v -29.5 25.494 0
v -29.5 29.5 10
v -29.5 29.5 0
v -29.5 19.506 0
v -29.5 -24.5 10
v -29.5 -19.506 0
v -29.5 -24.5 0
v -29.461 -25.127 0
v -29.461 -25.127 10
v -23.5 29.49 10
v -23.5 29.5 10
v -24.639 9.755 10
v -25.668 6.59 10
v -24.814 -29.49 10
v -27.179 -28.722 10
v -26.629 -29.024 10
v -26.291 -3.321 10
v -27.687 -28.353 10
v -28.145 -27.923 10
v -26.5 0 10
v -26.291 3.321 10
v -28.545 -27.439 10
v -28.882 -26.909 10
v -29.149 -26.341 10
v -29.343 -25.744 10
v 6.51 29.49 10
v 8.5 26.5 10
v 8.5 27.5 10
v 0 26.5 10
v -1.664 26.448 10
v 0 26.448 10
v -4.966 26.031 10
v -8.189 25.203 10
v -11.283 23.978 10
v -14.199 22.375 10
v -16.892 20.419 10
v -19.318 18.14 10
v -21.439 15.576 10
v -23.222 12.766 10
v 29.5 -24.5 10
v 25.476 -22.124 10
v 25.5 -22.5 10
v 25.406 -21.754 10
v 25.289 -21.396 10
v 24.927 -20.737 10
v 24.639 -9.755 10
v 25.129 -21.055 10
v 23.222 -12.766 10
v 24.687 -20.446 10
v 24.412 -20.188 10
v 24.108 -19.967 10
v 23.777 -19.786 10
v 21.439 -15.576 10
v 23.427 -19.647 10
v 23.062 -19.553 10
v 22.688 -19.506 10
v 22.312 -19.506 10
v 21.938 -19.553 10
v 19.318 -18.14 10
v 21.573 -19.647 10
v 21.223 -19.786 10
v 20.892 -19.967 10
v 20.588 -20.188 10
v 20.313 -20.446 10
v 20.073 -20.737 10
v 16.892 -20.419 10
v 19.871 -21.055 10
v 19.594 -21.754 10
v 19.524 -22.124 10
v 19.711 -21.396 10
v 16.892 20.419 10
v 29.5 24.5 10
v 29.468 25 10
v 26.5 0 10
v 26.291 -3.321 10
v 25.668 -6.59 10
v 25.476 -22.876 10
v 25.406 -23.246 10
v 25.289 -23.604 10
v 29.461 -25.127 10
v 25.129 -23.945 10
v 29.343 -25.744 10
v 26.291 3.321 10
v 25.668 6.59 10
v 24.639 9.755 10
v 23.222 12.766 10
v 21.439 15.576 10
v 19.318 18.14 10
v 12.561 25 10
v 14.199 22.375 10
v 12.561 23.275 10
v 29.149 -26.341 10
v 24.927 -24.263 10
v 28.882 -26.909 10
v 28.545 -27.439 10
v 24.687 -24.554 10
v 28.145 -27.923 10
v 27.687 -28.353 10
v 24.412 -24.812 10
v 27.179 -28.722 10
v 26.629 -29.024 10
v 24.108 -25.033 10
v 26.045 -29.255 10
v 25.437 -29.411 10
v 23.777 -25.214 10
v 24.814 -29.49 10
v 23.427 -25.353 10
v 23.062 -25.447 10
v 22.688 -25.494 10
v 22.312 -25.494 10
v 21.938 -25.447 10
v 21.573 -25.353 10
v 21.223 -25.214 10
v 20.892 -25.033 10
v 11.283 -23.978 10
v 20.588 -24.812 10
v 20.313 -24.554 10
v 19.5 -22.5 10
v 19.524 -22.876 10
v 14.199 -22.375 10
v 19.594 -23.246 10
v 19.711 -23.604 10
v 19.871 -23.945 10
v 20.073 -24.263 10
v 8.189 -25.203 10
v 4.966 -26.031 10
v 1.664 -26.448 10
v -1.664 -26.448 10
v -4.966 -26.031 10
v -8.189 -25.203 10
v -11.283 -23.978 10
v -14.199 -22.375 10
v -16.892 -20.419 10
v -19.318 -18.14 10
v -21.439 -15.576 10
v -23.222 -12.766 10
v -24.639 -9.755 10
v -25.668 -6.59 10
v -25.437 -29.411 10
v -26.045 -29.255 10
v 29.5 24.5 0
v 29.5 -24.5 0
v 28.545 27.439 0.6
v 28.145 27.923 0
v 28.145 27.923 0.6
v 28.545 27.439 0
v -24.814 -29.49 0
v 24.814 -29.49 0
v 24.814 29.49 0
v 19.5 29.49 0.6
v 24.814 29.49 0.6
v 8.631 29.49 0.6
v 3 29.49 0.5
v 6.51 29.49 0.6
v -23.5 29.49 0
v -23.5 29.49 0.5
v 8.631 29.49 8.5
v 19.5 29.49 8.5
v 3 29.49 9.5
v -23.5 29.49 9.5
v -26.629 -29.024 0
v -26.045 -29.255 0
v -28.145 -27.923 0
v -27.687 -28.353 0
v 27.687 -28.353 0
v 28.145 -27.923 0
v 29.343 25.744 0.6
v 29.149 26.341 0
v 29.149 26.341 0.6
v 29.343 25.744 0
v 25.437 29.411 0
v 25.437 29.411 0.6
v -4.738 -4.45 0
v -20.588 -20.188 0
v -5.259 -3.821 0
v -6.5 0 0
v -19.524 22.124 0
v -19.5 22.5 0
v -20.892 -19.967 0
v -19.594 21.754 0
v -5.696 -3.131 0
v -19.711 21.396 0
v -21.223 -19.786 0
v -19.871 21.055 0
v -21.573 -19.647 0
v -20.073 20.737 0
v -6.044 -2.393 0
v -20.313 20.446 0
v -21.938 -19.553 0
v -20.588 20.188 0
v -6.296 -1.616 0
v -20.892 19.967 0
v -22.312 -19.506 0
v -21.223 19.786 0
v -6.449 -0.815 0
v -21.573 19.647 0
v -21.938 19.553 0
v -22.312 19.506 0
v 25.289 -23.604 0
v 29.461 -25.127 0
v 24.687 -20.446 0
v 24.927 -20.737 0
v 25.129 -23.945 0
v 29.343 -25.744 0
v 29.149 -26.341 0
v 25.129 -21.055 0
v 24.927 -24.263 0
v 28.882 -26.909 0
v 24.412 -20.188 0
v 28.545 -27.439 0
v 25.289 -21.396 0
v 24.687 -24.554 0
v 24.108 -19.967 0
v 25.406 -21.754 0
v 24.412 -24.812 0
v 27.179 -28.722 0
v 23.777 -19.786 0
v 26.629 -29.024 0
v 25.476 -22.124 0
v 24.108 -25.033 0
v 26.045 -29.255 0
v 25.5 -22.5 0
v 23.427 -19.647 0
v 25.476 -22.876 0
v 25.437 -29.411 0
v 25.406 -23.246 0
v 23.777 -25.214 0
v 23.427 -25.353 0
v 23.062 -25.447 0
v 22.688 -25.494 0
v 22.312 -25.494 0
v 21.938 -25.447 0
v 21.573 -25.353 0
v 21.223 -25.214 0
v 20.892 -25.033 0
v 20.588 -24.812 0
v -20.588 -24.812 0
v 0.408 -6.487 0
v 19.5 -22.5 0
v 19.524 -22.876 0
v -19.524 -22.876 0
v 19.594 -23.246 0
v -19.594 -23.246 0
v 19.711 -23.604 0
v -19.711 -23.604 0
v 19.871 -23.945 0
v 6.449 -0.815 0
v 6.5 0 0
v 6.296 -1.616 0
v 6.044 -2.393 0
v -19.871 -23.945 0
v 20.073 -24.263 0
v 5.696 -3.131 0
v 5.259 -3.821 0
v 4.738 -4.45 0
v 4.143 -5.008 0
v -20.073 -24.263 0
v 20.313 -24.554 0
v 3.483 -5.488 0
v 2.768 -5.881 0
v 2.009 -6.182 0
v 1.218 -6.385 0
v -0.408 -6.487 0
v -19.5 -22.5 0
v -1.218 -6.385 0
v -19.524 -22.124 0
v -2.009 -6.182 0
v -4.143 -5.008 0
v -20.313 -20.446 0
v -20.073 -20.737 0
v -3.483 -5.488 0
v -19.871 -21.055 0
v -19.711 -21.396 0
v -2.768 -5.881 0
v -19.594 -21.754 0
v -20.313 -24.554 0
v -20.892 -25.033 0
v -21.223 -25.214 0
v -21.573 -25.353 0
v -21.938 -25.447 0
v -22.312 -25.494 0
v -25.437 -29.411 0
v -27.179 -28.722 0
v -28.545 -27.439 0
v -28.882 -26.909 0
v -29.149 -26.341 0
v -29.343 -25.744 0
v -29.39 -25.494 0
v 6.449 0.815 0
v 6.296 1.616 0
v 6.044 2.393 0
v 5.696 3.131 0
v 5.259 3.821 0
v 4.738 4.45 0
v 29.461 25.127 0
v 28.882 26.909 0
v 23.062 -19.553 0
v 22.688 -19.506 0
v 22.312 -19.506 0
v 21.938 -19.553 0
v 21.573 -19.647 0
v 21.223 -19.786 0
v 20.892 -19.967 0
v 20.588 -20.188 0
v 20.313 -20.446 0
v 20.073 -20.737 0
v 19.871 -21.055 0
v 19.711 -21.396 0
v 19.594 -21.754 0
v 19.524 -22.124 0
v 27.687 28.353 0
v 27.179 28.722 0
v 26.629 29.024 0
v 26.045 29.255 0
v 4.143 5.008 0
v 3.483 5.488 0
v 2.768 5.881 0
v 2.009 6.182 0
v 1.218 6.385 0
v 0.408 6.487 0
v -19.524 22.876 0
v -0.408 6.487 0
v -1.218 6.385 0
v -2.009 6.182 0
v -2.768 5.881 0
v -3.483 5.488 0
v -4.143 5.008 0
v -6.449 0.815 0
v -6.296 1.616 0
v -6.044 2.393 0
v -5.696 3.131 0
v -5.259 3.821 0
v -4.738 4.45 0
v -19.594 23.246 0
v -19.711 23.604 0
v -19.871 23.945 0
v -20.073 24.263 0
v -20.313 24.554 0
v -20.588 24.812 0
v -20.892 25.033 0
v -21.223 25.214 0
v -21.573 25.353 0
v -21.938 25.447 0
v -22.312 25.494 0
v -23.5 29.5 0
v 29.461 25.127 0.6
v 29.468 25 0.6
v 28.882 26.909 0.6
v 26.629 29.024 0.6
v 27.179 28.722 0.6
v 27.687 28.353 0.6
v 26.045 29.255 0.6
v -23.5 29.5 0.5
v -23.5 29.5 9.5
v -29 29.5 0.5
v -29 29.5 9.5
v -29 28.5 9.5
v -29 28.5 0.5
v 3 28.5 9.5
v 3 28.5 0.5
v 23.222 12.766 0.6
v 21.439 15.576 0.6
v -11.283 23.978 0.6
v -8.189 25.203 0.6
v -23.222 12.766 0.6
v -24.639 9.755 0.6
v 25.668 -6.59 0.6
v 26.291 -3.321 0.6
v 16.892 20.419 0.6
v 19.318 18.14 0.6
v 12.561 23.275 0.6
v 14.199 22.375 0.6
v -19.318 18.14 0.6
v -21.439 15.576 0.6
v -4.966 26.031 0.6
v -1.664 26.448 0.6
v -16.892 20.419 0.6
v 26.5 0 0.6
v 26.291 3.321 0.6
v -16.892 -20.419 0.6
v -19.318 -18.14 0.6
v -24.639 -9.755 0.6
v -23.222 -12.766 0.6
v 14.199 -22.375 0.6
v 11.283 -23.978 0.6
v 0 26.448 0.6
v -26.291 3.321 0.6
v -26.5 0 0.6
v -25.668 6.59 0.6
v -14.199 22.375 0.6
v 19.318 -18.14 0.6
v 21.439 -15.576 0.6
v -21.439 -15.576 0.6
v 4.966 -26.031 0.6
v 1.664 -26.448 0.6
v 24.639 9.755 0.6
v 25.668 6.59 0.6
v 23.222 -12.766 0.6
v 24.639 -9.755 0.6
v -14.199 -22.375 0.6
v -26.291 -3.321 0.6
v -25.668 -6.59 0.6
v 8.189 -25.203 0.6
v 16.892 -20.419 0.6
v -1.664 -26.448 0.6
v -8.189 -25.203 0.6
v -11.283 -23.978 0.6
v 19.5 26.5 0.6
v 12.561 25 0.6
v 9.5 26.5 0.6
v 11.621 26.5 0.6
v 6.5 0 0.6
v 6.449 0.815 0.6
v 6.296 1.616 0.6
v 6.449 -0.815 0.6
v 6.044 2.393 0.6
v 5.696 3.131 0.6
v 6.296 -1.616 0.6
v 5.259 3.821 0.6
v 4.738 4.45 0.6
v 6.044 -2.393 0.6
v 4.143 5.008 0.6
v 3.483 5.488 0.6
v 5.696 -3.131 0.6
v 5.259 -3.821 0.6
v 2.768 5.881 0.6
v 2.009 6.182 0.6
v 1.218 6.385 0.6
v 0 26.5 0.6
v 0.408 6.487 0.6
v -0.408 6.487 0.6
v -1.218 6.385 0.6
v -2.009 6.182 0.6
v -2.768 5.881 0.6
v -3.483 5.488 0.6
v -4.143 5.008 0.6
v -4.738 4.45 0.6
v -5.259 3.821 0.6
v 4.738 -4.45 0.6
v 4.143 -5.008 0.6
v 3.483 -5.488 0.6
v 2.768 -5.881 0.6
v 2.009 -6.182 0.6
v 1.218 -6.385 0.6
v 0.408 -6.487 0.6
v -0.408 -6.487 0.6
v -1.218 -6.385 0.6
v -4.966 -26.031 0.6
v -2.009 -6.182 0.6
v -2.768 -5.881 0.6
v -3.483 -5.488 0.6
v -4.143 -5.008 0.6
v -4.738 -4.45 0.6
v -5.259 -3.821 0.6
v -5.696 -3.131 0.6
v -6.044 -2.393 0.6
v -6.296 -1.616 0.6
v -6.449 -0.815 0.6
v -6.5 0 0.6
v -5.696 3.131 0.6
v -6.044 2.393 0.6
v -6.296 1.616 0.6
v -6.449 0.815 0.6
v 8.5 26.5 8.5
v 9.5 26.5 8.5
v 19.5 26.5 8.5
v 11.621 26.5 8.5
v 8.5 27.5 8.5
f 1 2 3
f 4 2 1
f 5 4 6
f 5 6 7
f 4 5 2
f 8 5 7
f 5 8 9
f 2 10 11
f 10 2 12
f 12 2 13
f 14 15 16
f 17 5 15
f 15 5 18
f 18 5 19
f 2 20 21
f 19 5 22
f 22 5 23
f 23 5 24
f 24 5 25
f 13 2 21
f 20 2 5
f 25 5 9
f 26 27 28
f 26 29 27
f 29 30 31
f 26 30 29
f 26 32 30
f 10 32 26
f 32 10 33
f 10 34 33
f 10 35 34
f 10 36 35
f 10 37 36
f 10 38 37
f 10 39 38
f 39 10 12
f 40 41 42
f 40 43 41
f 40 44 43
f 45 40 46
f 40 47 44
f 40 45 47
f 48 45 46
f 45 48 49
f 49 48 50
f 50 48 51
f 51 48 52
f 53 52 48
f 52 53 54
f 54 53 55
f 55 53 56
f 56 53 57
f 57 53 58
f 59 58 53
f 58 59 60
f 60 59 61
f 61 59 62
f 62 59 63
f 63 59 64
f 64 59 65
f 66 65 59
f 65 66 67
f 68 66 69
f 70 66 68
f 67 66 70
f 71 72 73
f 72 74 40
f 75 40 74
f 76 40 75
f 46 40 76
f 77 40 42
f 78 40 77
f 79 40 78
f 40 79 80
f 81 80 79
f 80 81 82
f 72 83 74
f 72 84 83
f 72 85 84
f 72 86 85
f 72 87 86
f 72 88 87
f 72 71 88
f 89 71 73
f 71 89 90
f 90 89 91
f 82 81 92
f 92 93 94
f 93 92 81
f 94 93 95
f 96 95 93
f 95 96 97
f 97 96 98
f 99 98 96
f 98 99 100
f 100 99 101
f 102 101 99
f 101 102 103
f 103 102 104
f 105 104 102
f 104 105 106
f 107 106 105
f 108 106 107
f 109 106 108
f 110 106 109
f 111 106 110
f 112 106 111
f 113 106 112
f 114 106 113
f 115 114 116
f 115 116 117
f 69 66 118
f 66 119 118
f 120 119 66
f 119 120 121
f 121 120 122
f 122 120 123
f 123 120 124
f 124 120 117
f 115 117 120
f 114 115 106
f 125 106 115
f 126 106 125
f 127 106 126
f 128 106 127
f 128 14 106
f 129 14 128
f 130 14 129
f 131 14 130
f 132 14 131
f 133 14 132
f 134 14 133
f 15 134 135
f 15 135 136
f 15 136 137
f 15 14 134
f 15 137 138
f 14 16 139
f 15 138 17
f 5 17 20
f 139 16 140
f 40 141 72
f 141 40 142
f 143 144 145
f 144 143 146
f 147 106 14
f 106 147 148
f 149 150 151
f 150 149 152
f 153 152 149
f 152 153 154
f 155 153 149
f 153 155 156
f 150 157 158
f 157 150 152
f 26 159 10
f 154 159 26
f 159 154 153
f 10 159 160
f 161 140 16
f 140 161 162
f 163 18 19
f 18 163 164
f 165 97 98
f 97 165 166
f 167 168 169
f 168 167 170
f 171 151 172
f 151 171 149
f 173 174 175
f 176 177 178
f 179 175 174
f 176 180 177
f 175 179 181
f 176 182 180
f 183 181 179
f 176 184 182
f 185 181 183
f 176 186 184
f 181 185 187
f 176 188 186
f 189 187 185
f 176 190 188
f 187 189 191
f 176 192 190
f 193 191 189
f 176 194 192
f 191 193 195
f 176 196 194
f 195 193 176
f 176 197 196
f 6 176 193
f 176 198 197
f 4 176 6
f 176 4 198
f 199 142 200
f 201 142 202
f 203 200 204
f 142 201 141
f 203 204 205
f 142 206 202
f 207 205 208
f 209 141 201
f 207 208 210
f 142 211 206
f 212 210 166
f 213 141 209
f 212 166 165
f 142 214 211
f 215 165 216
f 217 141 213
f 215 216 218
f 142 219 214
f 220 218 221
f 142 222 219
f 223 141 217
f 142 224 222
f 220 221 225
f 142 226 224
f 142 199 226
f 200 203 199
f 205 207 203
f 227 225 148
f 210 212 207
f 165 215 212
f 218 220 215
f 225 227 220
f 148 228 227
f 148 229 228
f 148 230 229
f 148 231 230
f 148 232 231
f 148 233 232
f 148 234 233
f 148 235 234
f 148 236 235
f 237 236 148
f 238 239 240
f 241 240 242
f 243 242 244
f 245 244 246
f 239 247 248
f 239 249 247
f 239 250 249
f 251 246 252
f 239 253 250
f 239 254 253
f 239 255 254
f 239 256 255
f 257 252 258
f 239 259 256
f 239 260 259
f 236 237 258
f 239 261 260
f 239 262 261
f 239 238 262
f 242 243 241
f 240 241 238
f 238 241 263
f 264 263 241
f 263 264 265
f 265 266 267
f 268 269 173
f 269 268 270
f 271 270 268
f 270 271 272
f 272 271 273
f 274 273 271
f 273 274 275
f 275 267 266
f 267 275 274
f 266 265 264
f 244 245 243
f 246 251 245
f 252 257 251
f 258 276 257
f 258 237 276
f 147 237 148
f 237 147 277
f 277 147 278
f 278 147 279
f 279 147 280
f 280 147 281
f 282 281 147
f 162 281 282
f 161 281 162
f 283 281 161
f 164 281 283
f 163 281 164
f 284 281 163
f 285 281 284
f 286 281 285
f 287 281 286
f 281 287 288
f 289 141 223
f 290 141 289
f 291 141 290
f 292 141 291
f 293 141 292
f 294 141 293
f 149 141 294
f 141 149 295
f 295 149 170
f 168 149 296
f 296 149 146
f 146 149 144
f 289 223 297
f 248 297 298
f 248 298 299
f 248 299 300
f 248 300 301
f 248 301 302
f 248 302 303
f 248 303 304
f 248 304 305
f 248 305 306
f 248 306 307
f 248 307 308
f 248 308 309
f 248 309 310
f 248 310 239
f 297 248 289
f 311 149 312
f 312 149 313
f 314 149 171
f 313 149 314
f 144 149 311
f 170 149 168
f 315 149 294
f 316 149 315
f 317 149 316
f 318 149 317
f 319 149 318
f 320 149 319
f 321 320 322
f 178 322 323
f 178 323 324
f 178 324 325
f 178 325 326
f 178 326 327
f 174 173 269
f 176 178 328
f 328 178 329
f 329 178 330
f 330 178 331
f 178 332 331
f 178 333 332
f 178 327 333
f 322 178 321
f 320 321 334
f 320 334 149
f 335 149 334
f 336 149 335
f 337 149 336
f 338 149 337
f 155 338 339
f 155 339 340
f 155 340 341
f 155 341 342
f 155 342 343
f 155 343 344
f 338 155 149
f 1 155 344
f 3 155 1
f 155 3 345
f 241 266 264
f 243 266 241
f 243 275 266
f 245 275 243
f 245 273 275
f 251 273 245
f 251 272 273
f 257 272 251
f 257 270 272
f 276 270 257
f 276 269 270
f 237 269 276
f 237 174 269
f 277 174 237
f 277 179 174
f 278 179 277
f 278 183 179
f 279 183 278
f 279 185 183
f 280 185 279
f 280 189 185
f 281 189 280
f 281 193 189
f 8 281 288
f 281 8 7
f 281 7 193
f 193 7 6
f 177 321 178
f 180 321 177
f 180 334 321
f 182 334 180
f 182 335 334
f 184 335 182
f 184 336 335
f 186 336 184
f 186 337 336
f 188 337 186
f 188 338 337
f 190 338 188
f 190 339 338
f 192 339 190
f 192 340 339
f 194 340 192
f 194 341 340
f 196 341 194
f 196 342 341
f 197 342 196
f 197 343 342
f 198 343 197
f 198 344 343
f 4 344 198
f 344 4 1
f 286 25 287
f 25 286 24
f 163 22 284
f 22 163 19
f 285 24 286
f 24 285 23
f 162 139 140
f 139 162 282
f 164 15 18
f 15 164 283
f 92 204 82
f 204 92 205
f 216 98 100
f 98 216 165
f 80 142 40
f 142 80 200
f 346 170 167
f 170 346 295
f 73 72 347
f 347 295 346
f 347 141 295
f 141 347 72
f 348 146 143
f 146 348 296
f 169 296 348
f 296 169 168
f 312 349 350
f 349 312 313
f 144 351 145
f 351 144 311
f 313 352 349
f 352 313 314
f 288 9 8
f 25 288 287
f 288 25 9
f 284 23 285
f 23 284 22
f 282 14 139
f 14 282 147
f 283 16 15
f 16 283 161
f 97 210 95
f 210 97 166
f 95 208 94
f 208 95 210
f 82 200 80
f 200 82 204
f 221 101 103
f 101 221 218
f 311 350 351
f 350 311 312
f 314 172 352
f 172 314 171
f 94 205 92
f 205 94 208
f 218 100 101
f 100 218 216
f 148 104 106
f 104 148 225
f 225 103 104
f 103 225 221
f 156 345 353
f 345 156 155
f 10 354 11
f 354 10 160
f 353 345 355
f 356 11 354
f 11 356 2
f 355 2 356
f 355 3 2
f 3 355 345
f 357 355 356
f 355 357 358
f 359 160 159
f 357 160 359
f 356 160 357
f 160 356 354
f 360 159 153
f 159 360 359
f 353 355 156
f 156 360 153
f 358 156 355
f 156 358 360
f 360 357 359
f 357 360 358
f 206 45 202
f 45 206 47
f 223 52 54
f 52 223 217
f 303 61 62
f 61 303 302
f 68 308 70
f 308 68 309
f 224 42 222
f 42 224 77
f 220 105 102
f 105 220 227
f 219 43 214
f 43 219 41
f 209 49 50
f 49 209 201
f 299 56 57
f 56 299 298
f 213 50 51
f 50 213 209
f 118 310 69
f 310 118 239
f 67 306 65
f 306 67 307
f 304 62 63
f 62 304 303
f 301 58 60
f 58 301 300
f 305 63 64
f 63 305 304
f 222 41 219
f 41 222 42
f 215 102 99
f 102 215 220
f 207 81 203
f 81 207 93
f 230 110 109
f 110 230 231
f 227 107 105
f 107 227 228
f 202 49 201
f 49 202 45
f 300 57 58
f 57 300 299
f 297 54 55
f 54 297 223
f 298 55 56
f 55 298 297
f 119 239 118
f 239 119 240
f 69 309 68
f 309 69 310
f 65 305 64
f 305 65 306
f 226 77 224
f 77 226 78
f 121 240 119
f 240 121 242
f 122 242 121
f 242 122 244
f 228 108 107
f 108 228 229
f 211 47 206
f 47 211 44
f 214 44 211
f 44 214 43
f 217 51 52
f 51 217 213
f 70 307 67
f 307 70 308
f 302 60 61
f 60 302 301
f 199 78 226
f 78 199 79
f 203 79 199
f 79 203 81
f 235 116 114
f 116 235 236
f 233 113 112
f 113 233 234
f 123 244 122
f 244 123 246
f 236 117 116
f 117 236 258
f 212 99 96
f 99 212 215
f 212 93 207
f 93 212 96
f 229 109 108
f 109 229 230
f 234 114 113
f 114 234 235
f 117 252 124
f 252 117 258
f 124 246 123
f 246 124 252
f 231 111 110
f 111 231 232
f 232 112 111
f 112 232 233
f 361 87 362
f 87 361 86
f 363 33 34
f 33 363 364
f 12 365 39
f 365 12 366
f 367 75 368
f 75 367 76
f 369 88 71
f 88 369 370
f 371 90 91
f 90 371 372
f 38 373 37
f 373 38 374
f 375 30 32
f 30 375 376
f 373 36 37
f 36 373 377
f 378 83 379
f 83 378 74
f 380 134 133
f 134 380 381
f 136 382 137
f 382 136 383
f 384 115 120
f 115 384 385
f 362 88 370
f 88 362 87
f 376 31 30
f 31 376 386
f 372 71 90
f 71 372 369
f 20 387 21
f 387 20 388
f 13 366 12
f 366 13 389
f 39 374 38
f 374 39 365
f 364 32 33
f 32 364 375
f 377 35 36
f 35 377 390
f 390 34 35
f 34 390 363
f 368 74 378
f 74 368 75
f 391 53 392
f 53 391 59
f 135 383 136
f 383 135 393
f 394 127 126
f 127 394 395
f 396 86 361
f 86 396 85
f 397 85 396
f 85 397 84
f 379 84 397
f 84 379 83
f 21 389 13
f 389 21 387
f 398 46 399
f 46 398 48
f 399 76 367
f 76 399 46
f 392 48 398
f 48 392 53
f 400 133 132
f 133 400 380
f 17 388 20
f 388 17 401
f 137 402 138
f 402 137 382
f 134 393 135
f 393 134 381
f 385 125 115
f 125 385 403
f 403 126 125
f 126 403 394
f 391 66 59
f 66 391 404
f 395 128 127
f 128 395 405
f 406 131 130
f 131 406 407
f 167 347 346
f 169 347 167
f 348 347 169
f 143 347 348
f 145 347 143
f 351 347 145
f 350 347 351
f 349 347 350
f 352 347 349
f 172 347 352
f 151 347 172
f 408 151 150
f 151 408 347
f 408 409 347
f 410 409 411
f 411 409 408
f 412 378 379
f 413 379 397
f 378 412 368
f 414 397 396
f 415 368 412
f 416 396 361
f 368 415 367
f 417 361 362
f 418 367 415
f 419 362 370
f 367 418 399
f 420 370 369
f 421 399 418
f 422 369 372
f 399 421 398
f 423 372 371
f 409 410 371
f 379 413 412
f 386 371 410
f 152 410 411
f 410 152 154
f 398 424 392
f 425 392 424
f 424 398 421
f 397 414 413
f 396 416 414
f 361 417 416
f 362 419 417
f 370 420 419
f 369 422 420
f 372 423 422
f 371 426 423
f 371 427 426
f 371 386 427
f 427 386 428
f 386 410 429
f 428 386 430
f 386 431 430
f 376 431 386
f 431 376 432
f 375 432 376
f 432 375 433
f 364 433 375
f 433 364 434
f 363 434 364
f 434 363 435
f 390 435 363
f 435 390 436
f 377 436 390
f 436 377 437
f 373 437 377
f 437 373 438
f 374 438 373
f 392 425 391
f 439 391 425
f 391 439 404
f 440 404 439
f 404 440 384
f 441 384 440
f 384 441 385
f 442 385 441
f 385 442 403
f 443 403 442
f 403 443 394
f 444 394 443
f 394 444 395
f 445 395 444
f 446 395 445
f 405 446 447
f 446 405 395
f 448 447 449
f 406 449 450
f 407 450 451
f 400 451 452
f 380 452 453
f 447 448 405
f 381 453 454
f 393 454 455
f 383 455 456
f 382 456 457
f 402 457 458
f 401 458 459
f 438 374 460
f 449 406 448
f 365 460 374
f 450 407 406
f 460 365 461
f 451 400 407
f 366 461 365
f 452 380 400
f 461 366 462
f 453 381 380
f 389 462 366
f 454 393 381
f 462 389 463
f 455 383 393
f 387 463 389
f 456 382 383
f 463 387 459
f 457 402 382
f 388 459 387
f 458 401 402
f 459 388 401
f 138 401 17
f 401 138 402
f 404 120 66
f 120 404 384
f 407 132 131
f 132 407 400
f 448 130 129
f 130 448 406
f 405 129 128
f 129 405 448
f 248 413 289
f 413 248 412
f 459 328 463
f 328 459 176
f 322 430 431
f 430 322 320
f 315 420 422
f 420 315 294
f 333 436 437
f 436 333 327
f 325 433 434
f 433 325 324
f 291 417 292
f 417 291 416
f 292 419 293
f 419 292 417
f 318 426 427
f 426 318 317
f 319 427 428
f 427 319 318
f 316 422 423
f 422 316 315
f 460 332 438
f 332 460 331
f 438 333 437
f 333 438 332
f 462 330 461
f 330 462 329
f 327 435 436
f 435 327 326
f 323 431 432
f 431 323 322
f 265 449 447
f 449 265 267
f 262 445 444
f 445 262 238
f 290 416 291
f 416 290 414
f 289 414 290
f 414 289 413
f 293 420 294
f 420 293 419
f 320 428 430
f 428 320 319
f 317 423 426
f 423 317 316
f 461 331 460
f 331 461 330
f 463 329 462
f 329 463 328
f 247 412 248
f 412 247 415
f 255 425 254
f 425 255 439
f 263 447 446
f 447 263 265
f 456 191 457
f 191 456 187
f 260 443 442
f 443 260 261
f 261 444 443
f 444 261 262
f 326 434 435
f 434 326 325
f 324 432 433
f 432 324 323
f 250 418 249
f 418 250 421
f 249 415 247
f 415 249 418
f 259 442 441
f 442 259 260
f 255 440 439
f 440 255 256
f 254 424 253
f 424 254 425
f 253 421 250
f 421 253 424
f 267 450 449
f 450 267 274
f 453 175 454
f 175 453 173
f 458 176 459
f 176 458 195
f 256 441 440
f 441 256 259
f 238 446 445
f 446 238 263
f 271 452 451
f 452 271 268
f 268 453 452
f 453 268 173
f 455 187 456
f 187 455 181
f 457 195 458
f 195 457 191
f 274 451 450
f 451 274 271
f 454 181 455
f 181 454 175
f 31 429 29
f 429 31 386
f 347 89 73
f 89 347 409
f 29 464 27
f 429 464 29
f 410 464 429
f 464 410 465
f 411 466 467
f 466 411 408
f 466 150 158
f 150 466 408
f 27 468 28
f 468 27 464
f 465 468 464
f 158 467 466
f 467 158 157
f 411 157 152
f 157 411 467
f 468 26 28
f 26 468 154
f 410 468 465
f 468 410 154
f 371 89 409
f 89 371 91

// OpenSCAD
$fn = 50;


difference() {
	union() {
		hull() {
			translate(v = [-24.5000000000, 24.5000000000, 0]) {
				cylinder(h = 10, r = 5);
			}
			translate(v = [24.5000000000, 24.5000000000, 0]) {
				cylinder(h = 10, r = 5);
			}
			translate(v = [-24.5000000000, -24.5000000000, 0]) {
				cylinder(h = 10, r = 5);
			}
			translate(v = [24.5000000000, -24.5000000000, 0]) {
				cylinder(h = 10, r = 5);
			}
		}
		translate(v = [-29.5000000000, 23.5000000000, 0]) {
			cube(size = [6, 6, 10]);
		}
	}
	union() {
		translate(v = [-30.0000000000, -22.5000000000, -250.0000000000]) {
			rotate(a = [0, 0, 0]) {
				difference() {
					union() {
						hull() {
							translate(v = [7.5000000000, 0, 0]) {
								cylinder(h = 250, r = 3.0000000000, r1 = 3.0000000000, r2 = 3.0000000000);
							}
							translate(v = [-7.5000000000, 0, 0]) {
								cylinder(h = 250, r = 3.0000000000, r1 = 3.0000000000, r2 = 3.0000000000);
							}
						}
					}
					union();
				}
			}
		}
		translate(v = [-30.0000000000, 22.5000000000, -250.0000000000]) {
			rotate(a = [0, 0, 0]) {
				difference() {
					union() {
						hull() {
							translate(v = [7.5000000000, 0, 0]) {
								cylinder(h = 250, r = 3.0000000000, r1 = 3.0000000000, r2 = 3.0000000000);
							}
							translate(v = [-7.5000000000, 0, 0]) {
								cylinder(h = 250, r = 3.0000000000, r1 = 3.0000000000, r2 = 3.0000000000);
							}
						}
					}
					union();
				}
			}
		}
		translate(v = [-29.0000000000, 28.5000000000, 0.5000000000]) {
			cube(size = [32, 1, 9.0000000000]);
		}
		translate(v = [22.5000000000, -22.5000000000, -50.0000000000]) {
			cylinder(h = 100, r = 3.0000000000);
		}
		translate(v = [0, 0, 0.6000000000]) {
			cylinder(h = 12.4000000000, r = 26.5000000000);
		}
		translate(v = [0, 0, -5.0000000000]) {
			cylinder(h = 10, r = 6.5000000000);
		}
		translate(v = [0.0000000000, 25.0000000000, 0.6000000000]) {
			cube(size = [29.5000000000, 1.5000000000, 12.4000000000]);
		}
		translate(v = [19.5000000000, 25.0000000000, 0.6000000000]) {
			cube(size = [10, 4.5000000000, 12.4000000000]);
		}
		translate(v = [8.5000000000, 25.0000000000, 8.5000000000]) {
			cube(size = [21, 4.5000000000, 1.5000000000]);
		}
		translate(v = [5.7500000000, 30.2500000000, 0.6000000000]) {
			rotate(a = [0, 0, -45]) {
				cube(size = [7.5000000000, 1.5000000000, 12.4000000000]);
			}
		}
		translate(v = [5.0610000000, 23.0000000000, 0.6000000000]) {
			cube(size = [7.5000000000, 2, 9.4000000000]);
		}
	}
}
